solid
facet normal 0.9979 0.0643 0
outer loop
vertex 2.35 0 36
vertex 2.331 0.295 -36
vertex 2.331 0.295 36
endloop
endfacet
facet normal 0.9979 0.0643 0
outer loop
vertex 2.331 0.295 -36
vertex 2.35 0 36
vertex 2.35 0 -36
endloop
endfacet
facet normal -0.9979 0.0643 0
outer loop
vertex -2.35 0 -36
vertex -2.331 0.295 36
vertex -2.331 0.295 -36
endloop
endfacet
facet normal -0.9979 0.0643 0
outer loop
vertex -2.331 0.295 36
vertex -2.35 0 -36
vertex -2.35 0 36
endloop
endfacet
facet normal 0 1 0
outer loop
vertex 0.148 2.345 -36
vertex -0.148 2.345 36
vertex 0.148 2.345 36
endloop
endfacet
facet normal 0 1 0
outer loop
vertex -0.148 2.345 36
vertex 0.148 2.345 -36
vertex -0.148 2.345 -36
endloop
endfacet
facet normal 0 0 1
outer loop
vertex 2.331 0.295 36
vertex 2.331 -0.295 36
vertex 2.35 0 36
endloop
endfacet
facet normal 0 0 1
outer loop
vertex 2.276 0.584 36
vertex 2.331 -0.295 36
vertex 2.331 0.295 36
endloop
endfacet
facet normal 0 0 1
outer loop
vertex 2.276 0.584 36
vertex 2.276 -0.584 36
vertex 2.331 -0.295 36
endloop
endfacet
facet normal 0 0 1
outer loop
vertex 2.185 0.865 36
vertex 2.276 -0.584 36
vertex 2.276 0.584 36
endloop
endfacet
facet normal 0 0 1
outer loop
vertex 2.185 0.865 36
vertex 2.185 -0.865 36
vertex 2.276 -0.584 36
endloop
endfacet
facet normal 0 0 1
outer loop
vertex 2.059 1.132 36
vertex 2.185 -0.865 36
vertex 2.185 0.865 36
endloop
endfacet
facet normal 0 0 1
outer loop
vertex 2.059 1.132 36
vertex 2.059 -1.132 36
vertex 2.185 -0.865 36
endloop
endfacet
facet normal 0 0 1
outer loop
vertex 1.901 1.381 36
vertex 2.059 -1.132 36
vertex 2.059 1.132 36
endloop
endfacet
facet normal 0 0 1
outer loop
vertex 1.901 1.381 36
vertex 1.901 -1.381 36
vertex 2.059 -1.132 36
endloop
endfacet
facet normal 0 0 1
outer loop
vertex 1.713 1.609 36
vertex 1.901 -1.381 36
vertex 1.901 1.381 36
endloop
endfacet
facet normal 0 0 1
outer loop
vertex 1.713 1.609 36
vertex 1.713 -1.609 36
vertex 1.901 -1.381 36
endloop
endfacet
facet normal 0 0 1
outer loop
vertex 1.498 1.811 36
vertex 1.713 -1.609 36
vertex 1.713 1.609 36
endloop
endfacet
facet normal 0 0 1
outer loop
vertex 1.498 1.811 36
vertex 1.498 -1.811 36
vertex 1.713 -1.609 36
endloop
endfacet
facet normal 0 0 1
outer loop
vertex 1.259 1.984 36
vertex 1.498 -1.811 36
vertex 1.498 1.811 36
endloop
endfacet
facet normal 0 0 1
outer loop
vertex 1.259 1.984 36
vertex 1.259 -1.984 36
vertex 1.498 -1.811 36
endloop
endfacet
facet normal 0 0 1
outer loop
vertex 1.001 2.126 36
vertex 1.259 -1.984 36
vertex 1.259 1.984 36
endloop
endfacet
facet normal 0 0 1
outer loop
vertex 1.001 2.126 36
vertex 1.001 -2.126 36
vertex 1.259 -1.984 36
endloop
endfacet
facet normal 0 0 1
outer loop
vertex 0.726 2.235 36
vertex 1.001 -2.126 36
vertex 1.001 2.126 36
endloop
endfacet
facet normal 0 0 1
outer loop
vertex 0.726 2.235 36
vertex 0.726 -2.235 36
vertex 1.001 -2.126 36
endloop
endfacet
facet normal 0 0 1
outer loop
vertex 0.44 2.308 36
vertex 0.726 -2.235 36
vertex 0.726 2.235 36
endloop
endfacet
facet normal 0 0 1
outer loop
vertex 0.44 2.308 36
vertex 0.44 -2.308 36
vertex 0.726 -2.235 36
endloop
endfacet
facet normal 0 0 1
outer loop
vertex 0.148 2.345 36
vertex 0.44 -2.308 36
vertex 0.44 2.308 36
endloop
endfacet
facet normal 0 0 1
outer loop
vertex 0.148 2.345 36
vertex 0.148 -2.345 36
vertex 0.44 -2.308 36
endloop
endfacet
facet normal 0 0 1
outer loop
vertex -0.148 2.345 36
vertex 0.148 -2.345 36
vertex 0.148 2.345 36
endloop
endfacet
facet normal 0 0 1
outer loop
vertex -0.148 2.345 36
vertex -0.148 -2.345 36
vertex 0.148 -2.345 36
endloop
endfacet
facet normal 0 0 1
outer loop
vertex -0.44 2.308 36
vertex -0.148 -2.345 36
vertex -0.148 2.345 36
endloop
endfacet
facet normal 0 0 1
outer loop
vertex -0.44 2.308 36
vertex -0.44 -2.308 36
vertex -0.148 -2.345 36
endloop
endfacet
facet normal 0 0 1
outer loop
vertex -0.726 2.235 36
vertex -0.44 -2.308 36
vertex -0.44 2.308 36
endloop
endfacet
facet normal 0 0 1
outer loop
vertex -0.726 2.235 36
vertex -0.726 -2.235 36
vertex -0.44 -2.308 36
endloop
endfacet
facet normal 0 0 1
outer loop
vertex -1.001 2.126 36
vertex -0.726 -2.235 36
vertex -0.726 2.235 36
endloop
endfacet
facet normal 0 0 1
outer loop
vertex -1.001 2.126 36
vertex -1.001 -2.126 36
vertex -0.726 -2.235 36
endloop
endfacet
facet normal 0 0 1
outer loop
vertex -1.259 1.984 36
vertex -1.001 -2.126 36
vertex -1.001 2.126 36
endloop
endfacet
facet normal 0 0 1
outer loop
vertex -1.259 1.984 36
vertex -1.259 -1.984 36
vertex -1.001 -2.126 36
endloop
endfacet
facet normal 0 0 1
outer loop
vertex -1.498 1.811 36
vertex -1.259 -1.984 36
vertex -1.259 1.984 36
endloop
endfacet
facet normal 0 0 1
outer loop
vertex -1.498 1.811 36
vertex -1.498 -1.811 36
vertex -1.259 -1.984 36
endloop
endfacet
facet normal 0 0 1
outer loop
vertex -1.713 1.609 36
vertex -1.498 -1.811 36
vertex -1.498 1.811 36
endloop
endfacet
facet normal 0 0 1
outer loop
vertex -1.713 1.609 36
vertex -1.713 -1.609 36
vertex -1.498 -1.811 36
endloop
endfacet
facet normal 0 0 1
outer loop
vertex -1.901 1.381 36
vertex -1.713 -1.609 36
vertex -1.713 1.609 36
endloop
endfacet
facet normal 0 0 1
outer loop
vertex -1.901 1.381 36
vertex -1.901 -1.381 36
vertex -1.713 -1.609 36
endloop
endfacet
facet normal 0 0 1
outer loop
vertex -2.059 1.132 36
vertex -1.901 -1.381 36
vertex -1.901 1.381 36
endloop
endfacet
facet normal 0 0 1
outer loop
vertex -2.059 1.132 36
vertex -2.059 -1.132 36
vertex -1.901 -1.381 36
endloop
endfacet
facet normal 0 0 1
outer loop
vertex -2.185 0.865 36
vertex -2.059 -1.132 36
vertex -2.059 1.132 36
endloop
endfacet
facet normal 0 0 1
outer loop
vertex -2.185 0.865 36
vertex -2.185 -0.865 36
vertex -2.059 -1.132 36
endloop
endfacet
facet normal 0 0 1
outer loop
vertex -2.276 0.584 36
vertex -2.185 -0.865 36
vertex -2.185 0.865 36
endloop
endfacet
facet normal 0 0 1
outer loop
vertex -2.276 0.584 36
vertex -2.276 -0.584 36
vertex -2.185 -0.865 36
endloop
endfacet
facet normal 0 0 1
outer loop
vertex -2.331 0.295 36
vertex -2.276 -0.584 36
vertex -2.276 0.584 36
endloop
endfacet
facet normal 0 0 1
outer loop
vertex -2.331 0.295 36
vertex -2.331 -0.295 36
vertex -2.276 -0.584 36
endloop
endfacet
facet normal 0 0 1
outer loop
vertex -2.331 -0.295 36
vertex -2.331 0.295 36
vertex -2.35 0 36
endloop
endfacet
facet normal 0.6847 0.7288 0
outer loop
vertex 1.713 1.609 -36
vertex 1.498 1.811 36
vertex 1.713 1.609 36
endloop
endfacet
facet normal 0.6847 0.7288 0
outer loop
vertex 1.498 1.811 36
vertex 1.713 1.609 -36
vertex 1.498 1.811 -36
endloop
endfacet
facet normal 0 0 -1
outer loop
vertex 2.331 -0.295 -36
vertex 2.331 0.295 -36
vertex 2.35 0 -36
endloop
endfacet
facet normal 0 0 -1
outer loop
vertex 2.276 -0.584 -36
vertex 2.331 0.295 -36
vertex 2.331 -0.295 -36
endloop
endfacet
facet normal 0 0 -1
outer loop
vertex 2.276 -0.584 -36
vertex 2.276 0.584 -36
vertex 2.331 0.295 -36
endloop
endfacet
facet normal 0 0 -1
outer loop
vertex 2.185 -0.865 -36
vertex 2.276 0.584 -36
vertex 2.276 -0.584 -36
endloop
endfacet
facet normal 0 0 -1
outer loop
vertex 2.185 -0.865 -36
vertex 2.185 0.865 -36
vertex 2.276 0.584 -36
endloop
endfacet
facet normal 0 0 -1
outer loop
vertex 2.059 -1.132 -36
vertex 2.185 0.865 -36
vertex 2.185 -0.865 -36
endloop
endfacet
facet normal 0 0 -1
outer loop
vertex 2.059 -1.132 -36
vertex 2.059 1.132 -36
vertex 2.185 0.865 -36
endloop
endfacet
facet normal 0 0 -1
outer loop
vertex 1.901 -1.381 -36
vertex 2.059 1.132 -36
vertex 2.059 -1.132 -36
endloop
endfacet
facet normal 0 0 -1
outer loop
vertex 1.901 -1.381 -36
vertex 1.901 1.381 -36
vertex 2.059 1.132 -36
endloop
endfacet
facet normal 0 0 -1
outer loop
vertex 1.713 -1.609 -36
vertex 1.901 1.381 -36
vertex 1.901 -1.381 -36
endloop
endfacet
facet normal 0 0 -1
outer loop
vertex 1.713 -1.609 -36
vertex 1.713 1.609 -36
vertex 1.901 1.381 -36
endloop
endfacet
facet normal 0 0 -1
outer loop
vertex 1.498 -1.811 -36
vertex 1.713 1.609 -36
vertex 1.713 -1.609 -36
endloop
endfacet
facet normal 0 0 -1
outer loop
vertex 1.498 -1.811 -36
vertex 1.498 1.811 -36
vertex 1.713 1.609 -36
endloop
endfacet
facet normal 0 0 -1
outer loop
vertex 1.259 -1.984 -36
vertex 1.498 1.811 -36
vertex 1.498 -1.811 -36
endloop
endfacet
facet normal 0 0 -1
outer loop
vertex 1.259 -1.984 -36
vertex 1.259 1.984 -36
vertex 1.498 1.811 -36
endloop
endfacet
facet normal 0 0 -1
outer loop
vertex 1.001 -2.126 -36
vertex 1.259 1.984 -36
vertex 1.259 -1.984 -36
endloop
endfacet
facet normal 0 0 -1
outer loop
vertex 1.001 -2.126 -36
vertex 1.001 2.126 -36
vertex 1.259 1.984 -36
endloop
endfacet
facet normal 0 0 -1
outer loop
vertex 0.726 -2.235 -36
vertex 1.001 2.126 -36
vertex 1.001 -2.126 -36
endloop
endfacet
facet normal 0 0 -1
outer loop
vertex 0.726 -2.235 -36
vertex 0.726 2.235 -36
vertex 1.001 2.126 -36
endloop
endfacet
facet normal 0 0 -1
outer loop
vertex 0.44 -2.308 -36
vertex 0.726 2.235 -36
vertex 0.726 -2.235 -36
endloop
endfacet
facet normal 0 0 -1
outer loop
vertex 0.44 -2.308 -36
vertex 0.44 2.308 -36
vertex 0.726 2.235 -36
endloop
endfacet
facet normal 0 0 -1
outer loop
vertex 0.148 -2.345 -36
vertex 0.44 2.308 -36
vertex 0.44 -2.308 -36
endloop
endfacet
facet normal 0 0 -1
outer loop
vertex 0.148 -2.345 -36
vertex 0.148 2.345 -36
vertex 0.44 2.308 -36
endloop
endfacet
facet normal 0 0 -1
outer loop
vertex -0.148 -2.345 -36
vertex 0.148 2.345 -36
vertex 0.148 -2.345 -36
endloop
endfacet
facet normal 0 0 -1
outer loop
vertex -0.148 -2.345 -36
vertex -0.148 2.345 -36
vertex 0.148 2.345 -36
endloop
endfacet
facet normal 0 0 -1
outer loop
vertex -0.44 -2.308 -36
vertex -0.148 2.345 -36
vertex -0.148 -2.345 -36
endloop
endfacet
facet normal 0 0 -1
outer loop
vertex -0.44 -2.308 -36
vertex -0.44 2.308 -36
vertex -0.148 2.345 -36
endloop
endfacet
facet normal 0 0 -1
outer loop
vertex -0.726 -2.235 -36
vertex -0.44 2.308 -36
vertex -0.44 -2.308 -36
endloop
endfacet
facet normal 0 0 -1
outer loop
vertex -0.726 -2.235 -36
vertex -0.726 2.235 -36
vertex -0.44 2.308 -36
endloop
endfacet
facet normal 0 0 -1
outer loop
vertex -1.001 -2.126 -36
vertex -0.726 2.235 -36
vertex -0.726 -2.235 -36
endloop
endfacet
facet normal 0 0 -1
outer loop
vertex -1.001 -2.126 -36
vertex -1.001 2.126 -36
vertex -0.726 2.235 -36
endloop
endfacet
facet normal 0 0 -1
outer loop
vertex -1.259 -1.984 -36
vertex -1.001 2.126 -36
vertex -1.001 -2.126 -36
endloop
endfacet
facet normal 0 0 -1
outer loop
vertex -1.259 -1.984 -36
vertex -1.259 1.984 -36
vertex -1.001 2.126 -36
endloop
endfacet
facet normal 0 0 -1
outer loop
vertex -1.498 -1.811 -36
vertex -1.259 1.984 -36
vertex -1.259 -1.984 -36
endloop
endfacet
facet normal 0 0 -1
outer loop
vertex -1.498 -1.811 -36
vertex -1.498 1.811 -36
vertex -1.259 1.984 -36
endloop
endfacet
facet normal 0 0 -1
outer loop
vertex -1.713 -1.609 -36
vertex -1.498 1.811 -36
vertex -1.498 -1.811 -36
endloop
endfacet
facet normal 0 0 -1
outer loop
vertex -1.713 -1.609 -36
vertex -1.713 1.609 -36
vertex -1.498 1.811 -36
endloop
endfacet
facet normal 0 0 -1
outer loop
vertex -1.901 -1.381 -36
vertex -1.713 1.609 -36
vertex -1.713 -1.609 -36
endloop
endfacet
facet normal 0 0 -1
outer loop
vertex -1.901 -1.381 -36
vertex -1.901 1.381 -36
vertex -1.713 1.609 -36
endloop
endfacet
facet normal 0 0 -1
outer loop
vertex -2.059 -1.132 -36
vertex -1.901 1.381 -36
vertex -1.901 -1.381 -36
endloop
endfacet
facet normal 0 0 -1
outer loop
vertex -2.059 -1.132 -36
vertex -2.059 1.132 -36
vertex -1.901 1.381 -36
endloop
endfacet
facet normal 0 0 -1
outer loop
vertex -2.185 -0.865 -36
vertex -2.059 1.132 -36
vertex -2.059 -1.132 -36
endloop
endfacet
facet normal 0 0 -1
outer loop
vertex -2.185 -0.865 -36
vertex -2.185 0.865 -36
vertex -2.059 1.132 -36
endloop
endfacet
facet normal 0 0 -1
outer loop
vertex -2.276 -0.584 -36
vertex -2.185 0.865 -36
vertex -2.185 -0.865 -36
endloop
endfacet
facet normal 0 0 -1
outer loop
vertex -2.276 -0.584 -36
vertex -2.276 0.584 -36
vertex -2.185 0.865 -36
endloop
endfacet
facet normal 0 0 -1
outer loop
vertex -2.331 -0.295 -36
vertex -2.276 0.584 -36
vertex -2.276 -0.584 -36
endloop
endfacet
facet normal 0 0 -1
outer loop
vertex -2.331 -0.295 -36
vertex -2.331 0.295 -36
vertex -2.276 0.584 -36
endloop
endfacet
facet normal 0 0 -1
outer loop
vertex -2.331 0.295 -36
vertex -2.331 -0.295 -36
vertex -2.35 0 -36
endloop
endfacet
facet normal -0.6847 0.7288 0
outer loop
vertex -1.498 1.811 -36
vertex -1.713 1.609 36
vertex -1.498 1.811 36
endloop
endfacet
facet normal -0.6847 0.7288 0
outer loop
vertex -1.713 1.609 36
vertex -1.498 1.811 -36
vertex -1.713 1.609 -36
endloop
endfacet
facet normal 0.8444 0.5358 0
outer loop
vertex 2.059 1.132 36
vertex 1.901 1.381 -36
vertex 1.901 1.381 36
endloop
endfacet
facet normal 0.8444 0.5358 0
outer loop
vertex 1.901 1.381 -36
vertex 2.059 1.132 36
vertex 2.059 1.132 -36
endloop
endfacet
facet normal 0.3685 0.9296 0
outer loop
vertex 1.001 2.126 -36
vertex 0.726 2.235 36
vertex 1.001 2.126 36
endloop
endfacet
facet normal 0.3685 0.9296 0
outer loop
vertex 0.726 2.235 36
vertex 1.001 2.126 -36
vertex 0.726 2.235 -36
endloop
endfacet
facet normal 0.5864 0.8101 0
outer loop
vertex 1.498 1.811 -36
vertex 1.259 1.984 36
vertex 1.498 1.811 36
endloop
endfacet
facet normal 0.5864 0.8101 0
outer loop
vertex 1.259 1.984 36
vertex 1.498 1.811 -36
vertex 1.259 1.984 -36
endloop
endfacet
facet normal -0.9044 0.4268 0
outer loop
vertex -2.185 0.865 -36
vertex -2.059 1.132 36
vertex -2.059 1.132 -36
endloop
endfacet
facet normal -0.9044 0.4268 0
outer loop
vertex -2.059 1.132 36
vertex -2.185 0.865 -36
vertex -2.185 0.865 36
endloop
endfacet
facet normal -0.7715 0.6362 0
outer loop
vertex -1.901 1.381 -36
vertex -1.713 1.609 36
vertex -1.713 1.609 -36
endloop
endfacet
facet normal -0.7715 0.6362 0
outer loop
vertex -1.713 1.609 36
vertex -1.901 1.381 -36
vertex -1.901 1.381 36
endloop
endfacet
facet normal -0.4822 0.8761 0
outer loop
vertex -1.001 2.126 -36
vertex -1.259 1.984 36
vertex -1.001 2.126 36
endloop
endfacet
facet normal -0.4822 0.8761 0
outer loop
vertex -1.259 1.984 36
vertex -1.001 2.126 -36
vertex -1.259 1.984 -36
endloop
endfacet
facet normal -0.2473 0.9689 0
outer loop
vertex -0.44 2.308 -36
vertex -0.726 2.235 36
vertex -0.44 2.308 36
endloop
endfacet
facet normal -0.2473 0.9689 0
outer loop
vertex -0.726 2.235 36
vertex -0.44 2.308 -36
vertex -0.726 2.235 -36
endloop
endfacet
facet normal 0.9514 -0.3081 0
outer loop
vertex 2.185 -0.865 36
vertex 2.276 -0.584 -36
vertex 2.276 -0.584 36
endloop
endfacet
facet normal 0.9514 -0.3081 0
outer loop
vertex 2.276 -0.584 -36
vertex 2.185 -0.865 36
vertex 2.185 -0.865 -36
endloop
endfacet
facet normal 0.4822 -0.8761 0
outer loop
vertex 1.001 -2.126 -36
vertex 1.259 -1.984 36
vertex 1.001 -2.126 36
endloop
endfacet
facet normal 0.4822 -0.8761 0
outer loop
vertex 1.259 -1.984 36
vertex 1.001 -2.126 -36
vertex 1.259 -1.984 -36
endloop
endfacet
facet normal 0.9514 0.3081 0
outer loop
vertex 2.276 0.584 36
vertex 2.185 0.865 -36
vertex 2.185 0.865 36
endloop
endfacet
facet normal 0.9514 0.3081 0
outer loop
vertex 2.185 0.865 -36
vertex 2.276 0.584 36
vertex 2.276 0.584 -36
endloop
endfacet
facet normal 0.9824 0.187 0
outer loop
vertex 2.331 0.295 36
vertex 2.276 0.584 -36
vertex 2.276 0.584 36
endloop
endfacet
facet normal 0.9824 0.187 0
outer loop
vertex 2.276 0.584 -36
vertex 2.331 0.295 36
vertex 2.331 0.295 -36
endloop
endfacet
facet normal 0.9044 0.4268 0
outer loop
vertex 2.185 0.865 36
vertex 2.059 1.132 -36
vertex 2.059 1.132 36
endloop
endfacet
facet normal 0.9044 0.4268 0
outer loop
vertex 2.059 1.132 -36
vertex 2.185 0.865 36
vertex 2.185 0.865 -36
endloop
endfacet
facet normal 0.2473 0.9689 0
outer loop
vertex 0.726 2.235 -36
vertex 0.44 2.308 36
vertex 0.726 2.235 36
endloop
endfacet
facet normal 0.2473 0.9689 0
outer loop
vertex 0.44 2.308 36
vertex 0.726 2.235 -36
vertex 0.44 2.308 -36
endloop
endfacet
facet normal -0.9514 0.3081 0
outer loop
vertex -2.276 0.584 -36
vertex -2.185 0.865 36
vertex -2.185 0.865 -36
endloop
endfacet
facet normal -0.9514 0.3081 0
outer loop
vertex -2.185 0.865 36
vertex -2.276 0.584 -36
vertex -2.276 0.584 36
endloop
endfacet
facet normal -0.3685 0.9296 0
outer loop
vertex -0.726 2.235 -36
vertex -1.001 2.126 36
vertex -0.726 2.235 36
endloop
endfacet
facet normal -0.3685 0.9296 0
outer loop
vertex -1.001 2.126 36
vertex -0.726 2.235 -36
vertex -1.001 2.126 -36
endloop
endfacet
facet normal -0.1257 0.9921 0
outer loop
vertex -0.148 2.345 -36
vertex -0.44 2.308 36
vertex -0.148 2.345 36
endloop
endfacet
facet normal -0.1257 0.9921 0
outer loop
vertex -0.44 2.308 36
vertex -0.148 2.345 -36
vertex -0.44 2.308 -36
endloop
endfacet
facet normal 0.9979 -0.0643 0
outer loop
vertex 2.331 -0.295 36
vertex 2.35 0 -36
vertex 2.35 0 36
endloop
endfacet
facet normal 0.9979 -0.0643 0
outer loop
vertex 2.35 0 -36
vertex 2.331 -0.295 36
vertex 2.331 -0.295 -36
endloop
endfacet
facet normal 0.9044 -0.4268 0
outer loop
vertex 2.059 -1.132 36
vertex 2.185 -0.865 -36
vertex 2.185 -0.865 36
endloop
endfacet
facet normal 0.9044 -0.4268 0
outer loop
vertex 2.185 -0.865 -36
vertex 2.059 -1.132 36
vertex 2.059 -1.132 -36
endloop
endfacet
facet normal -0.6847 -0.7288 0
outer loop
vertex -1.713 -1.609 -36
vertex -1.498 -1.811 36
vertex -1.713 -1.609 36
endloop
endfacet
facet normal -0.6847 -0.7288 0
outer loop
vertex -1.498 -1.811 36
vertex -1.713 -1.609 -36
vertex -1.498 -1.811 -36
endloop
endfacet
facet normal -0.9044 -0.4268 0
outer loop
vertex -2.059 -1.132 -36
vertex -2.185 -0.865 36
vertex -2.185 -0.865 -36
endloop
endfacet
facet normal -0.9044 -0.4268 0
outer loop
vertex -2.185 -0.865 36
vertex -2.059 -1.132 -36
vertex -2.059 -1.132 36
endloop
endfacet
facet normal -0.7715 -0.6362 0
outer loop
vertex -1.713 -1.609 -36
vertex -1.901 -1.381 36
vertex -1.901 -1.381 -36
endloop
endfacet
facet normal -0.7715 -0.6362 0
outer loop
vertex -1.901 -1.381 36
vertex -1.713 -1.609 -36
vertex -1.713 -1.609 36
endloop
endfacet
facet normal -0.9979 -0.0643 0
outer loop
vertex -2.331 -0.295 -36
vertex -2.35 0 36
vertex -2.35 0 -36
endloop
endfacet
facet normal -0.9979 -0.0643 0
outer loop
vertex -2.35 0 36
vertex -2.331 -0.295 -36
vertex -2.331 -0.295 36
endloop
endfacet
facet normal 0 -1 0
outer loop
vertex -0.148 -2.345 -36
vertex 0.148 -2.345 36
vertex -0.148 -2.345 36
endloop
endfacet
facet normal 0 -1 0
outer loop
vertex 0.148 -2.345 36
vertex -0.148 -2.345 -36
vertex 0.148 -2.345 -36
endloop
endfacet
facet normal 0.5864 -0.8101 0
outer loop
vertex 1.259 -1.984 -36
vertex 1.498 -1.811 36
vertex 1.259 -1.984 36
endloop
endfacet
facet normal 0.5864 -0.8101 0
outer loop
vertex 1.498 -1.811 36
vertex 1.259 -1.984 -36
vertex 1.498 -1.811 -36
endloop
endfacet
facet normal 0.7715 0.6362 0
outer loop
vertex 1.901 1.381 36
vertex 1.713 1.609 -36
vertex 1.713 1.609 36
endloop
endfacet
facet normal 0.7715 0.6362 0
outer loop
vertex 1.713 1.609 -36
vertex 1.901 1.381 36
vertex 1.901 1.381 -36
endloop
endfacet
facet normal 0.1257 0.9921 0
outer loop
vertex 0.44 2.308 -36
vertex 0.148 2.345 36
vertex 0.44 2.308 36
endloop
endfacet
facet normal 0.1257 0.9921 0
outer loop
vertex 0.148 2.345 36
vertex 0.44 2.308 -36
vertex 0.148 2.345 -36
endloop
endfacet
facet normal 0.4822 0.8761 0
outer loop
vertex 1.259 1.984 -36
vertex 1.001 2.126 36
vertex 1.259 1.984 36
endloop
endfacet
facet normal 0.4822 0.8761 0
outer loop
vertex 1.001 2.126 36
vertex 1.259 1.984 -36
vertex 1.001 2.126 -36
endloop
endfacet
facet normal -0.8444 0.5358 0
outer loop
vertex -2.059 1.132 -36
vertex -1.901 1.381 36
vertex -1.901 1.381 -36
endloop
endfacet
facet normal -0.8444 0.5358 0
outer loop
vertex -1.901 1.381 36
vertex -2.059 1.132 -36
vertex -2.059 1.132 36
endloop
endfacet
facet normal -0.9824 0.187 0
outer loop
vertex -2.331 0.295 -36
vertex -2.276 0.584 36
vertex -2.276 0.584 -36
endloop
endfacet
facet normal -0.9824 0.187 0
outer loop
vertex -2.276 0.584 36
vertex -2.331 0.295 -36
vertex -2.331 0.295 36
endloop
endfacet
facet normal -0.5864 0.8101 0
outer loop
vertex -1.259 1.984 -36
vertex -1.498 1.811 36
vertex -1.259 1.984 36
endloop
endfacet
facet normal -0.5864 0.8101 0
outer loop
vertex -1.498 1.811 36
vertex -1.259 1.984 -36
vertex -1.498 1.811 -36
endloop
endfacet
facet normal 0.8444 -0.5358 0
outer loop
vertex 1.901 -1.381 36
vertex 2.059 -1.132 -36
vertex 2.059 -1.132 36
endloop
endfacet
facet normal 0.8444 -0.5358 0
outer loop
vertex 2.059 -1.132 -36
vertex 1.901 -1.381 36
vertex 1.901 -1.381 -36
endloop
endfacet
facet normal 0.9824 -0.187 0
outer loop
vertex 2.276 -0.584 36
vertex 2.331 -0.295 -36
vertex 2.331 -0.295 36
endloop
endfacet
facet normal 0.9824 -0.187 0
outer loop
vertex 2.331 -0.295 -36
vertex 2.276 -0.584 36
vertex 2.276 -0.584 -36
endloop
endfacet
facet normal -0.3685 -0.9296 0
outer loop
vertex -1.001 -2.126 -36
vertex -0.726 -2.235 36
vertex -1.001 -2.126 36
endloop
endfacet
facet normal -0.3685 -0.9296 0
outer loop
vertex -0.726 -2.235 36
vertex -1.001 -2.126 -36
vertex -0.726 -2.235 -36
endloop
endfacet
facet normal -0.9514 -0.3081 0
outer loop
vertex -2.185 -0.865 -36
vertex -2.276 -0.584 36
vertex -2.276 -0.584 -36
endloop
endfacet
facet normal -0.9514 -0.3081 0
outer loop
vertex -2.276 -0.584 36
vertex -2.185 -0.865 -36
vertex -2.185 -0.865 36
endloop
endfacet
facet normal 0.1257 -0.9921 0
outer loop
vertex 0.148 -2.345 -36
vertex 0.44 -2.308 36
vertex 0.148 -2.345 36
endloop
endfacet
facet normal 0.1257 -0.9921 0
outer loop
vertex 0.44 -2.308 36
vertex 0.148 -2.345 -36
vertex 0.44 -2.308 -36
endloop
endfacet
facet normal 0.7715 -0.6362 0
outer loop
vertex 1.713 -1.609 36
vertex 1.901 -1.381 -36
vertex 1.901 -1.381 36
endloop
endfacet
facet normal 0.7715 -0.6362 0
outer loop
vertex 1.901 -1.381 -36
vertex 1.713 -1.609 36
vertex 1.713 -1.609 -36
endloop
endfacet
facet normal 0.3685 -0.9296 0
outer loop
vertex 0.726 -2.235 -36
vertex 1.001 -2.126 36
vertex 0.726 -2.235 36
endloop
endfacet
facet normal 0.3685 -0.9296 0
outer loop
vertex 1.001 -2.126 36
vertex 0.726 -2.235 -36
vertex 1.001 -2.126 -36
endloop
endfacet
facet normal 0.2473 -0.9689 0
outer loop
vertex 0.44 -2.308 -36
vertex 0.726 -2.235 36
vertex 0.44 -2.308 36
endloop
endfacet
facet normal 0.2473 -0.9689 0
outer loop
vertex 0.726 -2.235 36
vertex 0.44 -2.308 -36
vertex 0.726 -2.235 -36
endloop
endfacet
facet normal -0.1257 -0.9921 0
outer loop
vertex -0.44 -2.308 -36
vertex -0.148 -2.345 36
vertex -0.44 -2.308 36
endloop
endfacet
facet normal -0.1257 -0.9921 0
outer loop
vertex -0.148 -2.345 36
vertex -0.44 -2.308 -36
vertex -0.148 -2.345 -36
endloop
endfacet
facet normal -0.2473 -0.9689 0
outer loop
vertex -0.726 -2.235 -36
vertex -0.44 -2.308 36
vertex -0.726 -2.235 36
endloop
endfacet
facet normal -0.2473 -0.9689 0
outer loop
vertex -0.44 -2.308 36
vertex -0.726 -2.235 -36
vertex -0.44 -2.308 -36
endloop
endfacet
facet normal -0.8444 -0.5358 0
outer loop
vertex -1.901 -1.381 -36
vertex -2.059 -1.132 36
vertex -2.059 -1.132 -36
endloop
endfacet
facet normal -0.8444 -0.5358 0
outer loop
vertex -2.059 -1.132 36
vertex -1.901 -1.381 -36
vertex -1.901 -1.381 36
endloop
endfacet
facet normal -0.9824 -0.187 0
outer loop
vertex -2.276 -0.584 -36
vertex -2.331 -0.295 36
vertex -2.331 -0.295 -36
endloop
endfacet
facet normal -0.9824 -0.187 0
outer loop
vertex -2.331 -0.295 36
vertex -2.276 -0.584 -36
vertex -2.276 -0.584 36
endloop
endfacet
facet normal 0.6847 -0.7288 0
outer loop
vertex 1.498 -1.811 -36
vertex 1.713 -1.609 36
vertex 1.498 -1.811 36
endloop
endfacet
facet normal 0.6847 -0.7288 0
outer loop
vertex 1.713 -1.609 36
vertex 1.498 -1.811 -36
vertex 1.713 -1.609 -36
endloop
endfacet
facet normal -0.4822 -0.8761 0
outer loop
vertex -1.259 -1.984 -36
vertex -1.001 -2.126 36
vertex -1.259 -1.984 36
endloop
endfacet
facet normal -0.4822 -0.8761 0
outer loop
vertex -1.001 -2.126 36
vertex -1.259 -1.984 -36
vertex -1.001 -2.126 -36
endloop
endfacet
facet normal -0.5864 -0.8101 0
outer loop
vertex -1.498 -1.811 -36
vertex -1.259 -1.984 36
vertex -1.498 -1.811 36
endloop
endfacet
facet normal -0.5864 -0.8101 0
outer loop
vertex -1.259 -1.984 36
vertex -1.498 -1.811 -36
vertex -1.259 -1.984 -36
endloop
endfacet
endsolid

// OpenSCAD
$fn = 50;


difference() {
	union() {
		translate(v = [0, 0, -36.0000000000]) {
			cylinder(h = 72, r = 2.3500000000);
		}
	}
	union() {
		translate(v = [0, 0, -100.0000000000]) {
			cylinder(h = 200, r = 0);
		}
	}
}
